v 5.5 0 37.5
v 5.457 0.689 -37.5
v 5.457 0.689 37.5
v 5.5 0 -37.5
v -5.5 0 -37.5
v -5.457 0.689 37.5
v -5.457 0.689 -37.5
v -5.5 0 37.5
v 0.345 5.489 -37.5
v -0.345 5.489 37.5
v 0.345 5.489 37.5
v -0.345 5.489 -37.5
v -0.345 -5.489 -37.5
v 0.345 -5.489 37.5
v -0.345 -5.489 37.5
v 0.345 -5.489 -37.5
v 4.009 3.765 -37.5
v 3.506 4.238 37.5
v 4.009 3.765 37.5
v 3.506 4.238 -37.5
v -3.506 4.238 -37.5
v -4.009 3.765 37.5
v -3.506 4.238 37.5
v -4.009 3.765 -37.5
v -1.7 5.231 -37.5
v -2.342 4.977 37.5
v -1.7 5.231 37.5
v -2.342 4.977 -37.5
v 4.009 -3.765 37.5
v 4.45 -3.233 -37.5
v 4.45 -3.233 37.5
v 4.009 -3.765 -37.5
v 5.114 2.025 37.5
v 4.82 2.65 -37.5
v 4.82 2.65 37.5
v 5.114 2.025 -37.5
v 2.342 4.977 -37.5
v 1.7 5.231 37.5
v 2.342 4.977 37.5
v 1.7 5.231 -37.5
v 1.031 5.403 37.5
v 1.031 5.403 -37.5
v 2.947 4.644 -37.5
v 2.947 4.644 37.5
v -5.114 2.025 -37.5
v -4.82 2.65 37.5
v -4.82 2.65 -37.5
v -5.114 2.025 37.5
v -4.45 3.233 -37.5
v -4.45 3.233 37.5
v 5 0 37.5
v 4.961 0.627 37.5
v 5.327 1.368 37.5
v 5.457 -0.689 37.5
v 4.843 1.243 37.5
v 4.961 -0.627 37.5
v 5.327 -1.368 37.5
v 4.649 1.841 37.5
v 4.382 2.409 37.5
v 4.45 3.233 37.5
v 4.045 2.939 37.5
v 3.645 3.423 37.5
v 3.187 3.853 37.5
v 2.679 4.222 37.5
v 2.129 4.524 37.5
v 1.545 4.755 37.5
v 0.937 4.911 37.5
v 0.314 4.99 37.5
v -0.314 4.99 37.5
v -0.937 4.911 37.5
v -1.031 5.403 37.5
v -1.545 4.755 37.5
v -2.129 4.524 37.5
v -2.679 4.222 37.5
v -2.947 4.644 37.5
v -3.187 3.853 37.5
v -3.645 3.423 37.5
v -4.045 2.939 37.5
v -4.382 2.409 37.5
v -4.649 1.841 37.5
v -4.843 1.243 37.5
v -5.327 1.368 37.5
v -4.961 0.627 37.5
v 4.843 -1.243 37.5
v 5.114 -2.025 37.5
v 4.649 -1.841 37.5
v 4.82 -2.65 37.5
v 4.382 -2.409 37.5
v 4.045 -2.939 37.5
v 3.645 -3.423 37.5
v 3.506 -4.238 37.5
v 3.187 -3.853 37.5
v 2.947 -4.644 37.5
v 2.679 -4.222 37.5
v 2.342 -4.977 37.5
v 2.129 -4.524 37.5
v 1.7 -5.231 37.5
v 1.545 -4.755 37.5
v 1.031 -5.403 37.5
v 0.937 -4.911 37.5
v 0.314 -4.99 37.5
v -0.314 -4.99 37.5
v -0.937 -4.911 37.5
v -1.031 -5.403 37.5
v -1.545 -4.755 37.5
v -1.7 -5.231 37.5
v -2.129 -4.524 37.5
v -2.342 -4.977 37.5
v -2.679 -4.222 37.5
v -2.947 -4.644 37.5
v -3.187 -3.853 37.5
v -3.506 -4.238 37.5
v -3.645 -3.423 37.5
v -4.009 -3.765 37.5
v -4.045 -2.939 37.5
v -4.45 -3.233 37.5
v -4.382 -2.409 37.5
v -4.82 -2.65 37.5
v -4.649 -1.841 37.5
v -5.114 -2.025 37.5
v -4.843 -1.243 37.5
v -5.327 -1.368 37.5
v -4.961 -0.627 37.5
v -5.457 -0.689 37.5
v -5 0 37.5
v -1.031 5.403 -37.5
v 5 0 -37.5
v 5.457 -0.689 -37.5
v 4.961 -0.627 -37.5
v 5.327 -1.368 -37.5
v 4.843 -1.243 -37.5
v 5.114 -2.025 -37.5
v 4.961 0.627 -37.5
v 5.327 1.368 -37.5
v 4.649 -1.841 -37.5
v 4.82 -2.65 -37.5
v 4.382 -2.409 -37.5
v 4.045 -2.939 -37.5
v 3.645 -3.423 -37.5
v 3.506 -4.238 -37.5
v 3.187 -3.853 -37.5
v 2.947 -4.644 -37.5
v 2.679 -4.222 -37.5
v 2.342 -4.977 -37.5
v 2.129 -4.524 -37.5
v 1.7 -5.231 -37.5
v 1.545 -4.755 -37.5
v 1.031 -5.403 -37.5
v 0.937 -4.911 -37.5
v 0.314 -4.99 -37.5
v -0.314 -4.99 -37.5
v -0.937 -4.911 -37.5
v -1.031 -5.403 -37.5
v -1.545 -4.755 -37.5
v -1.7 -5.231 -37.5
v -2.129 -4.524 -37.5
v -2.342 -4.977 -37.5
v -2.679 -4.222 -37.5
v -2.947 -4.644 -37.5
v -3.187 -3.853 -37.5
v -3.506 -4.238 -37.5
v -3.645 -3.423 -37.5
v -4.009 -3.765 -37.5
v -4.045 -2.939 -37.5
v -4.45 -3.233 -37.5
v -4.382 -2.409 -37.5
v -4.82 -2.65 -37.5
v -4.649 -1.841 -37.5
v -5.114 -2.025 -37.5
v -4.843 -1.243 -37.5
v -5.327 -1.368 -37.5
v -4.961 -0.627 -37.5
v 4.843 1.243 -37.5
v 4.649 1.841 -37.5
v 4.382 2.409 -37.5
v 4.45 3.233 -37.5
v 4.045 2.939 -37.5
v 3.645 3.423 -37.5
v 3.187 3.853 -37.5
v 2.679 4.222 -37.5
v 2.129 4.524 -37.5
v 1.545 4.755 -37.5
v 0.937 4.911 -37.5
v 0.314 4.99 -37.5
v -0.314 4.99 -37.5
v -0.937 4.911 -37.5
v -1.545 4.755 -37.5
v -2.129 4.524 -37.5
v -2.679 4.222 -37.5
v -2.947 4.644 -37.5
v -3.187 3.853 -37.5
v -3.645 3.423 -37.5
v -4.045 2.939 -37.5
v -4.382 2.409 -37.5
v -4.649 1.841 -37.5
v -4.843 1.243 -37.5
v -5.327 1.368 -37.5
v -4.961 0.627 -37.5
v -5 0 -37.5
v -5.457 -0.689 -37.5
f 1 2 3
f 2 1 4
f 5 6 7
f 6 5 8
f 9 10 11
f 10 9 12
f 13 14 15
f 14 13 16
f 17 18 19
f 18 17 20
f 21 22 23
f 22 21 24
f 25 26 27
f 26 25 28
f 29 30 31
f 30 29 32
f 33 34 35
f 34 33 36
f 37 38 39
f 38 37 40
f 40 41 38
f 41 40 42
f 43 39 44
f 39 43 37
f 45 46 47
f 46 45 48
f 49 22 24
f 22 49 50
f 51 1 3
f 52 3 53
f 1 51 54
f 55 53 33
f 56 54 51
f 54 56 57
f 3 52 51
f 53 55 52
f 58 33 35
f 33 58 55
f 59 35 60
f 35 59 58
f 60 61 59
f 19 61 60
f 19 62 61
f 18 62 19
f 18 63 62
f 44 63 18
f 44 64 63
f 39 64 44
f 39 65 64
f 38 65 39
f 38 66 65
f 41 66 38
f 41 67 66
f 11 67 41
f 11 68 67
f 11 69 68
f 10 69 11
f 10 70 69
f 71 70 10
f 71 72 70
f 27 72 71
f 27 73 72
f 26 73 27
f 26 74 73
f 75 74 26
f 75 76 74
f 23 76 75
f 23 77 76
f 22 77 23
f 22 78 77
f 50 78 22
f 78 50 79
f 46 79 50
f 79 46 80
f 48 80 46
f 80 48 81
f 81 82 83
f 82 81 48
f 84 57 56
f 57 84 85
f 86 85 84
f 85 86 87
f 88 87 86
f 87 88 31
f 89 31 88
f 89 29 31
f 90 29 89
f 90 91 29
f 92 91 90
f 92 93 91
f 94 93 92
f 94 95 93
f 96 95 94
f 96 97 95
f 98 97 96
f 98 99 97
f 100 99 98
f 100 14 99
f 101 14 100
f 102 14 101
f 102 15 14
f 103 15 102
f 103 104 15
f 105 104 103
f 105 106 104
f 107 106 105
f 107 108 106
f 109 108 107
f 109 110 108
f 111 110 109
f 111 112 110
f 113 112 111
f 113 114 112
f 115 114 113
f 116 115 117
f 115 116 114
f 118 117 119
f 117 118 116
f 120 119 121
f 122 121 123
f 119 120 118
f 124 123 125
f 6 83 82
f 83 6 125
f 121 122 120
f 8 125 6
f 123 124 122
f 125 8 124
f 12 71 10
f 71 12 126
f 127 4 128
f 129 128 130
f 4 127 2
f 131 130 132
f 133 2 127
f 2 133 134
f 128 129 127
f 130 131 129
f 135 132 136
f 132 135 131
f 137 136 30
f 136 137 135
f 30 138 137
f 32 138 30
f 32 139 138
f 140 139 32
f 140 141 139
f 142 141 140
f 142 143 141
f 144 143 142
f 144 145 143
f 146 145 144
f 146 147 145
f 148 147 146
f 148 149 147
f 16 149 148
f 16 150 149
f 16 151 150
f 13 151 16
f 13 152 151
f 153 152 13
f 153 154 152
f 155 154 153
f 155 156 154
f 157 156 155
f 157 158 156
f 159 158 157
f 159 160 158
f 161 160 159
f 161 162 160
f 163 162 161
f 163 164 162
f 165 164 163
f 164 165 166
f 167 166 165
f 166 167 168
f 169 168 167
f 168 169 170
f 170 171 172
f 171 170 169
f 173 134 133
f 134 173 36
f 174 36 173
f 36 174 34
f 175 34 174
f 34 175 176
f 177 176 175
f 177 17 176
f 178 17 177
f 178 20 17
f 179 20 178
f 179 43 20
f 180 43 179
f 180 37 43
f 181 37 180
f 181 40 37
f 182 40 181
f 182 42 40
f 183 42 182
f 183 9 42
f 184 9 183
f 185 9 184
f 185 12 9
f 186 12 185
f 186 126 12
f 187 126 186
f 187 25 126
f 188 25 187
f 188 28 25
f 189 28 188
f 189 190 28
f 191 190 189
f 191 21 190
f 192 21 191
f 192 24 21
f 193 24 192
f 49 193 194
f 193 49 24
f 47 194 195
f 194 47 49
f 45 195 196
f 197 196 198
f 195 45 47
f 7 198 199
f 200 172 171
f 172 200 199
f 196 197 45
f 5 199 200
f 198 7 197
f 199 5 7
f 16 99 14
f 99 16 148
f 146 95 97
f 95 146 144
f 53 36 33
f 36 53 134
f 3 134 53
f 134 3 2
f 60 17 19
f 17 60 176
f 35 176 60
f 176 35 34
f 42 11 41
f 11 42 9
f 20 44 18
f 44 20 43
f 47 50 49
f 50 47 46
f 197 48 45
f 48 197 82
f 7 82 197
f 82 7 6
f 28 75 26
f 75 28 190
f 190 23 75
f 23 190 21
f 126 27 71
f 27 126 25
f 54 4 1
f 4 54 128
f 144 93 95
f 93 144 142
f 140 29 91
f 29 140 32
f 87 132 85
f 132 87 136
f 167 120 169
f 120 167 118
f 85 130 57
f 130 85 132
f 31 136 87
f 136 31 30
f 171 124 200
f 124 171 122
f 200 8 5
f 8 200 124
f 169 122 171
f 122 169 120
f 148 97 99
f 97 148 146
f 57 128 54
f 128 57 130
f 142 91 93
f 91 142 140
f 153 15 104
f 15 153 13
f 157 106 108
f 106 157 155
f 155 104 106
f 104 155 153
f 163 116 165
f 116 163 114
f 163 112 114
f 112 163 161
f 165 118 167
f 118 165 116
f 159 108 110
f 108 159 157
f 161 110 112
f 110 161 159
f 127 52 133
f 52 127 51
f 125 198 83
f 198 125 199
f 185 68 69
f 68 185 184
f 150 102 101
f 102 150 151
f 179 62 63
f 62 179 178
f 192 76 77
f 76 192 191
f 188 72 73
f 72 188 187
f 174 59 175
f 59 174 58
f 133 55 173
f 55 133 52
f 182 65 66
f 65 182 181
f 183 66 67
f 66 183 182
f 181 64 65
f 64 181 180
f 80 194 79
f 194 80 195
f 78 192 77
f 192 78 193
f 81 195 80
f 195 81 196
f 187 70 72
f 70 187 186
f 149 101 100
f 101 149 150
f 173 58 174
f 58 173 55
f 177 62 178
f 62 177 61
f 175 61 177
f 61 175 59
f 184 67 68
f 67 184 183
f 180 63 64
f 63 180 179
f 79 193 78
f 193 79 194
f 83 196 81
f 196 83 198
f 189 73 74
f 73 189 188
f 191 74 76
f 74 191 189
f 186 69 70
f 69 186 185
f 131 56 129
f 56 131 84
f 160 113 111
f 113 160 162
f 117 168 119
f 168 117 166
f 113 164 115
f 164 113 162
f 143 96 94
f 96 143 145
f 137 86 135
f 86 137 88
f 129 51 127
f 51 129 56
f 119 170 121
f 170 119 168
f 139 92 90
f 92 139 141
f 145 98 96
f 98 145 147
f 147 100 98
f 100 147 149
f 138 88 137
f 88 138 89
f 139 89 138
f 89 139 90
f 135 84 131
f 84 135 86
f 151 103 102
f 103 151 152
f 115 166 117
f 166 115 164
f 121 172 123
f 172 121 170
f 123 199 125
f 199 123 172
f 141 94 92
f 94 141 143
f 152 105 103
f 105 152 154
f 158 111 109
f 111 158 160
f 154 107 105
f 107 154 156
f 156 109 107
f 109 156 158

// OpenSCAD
$fn = 50;


difference() {
	union() {
		translate(v = [0, 0, -37.5000000000]) {
			cylinder(h = 75, r = 5.5000000000);
		}
	}
	union() {
		translate(v = [0, 0, -100.0000000000]) {
			cylinder(h = 200, r = 5);
		}
	}
}
